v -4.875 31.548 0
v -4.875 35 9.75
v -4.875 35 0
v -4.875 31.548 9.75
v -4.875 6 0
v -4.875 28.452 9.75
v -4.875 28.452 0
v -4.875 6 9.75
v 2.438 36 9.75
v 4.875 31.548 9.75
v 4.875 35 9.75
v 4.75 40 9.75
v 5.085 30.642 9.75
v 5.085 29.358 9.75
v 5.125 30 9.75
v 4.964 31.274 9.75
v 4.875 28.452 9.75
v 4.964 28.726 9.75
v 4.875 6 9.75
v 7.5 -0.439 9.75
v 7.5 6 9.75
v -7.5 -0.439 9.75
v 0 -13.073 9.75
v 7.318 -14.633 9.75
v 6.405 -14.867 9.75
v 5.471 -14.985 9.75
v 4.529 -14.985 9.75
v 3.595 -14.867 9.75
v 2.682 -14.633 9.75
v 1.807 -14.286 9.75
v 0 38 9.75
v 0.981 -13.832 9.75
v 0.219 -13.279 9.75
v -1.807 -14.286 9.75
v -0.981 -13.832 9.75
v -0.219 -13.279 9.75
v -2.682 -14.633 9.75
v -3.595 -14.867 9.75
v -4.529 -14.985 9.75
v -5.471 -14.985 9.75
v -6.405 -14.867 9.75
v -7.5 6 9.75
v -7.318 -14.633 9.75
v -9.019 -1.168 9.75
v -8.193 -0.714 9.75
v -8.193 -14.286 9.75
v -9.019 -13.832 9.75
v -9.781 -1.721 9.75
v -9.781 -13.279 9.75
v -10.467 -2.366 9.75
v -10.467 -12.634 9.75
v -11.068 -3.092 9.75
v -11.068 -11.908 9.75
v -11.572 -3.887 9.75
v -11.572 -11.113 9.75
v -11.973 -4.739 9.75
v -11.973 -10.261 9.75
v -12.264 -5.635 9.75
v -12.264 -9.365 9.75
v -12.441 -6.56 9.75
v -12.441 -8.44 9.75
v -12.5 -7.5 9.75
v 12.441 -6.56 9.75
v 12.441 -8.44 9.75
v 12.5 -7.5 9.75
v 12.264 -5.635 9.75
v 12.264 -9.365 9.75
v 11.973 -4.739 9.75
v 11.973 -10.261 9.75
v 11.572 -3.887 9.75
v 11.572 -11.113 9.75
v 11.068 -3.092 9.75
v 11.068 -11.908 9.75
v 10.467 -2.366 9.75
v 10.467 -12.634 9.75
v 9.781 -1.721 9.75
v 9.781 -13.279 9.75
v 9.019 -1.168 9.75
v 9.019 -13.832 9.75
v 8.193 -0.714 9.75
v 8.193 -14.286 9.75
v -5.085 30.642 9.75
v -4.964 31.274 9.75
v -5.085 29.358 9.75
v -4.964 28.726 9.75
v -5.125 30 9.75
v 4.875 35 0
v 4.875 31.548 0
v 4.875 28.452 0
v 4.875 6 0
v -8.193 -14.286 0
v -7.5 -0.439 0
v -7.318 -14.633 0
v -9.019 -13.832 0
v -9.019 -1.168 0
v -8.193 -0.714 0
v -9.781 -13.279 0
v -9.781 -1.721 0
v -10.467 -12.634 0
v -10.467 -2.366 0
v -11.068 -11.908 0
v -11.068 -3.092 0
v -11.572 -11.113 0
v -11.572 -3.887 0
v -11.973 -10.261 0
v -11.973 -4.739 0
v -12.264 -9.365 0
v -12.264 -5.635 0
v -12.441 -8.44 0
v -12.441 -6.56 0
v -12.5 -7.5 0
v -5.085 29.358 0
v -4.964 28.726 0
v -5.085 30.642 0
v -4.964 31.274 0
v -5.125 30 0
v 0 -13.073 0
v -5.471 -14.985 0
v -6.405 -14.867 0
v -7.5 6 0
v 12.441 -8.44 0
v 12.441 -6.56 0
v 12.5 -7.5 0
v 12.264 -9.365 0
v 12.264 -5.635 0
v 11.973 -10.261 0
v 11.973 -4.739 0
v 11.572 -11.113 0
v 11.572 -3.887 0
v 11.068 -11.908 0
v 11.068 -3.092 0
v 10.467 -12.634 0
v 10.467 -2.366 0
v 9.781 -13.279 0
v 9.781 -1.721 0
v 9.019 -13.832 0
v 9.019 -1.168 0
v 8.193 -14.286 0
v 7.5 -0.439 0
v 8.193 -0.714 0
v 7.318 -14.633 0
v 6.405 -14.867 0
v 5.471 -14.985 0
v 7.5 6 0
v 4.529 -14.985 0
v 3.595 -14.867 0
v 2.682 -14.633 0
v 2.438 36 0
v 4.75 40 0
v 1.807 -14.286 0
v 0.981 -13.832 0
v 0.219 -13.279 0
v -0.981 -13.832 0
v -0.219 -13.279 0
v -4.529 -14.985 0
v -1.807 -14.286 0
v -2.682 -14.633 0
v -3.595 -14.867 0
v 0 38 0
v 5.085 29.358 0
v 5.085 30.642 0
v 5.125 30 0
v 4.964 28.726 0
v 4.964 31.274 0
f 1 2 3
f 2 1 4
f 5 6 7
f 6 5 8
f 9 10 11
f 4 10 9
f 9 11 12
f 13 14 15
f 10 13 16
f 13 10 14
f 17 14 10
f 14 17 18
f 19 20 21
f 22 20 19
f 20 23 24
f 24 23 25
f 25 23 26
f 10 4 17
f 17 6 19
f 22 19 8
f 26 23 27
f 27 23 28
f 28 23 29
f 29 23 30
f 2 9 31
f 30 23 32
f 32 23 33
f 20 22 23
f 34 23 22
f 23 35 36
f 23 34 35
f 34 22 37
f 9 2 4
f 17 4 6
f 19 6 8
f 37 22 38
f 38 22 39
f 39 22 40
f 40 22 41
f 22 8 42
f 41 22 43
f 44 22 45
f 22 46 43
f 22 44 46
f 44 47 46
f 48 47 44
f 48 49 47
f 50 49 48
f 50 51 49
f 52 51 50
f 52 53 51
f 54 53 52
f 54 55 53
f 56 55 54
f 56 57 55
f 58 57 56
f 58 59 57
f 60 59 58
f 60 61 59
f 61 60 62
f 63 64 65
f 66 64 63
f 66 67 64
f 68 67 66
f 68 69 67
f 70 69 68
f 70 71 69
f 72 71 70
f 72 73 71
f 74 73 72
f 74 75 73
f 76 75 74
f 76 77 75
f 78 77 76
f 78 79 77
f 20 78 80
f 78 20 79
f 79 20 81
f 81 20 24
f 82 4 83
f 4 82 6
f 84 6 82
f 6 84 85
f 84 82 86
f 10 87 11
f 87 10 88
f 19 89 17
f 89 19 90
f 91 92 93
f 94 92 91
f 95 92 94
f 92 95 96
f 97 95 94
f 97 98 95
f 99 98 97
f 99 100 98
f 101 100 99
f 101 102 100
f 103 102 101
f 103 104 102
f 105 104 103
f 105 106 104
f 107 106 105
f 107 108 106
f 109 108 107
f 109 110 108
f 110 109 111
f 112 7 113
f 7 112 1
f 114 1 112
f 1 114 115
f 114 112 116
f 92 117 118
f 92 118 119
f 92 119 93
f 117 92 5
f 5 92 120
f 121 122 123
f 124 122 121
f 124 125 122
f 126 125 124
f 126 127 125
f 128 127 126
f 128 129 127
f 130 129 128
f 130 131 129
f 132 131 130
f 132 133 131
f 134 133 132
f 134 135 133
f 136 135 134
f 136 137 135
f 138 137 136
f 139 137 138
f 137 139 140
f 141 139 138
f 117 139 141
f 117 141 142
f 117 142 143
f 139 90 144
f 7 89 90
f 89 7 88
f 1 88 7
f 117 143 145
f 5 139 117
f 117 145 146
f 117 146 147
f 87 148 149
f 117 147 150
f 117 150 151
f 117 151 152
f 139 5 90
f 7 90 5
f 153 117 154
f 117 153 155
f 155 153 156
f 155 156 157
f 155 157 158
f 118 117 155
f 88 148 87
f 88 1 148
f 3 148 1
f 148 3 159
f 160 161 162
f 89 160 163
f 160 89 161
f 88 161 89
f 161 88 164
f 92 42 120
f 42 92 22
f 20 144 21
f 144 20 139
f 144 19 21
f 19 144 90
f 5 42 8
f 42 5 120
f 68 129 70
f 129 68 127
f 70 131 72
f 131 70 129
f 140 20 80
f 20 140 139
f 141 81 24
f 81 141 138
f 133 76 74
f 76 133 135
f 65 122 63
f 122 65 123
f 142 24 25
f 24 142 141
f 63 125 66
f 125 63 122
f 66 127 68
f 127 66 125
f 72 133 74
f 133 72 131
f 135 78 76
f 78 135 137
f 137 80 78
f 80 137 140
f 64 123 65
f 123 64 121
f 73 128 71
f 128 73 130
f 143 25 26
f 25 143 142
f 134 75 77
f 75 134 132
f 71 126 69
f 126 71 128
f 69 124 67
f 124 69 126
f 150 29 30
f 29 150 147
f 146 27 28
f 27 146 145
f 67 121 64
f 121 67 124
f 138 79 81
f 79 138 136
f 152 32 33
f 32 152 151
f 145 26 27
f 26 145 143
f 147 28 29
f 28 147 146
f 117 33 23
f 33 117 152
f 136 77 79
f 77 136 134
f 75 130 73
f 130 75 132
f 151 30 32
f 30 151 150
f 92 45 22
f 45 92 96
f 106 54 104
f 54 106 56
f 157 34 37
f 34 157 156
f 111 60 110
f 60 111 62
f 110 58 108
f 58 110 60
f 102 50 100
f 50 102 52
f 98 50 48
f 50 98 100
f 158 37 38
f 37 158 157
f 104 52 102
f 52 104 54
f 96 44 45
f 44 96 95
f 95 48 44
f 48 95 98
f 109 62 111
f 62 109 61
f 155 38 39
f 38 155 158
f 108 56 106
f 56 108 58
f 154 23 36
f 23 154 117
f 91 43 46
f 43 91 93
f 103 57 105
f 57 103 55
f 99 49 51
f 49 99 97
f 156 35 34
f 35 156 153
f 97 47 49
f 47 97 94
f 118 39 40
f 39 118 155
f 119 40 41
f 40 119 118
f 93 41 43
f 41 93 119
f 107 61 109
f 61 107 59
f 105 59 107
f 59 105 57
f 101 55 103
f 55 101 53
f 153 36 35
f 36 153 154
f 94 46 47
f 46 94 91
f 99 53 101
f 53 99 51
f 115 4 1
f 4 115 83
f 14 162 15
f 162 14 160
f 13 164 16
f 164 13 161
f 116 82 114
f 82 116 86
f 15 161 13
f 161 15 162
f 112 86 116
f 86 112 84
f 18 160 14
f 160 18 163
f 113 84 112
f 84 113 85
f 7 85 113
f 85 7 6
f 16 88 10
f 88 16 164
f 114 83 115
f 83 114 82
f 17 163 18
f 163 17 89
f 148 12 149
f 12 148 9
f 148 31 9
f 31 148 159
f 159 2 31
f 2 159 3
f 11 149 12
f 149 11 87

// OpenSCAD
// insert (need 2 items)

// clearance
tol = 0.25;

// innere insert parameters
iih = 10;
iiw = 10;
iil = 20;

// outer insert parameters
iod = 15;
ioh = iih;
irh = iih;
irw = 15;
irl = 6;

real_h = iih - tol;

pp = [[-(iiw - tol) / 2, 0],
	[(iiw - tol) / 2, 0],
	[(iiw - tol - tol) / 2, 5],
	[(iiw - tol) / 4, 1],
	[0, 3],
	[-(iiw - tol) / 4, 4]];
pl = [[0, 1, 2, 3, 4]];

translate([-(iiw - tol) / 2, 0, 0]) cube([iiw - tol, iil + irw, real_h]);
translate([-irw / 2, -irl, 0]) cube([irw, irl * 2, real_h]);
translate([iod / 3, -iod / 2, 0]) cylinder(d = iod, h = real_h, $fn = 50);
translate([-iod / 3, -iod / 2, 0]) cylinder(d = iod, h = real_h, $fn = 50);
translate([0, iil + irw - iih / 2, 0]) cylinder(d = iiw + tol, h = real_h, $fn = 50);
translate([0, iil + irw, 0]) linear_extrude(real_h) polygon(pp, pl, 10);
